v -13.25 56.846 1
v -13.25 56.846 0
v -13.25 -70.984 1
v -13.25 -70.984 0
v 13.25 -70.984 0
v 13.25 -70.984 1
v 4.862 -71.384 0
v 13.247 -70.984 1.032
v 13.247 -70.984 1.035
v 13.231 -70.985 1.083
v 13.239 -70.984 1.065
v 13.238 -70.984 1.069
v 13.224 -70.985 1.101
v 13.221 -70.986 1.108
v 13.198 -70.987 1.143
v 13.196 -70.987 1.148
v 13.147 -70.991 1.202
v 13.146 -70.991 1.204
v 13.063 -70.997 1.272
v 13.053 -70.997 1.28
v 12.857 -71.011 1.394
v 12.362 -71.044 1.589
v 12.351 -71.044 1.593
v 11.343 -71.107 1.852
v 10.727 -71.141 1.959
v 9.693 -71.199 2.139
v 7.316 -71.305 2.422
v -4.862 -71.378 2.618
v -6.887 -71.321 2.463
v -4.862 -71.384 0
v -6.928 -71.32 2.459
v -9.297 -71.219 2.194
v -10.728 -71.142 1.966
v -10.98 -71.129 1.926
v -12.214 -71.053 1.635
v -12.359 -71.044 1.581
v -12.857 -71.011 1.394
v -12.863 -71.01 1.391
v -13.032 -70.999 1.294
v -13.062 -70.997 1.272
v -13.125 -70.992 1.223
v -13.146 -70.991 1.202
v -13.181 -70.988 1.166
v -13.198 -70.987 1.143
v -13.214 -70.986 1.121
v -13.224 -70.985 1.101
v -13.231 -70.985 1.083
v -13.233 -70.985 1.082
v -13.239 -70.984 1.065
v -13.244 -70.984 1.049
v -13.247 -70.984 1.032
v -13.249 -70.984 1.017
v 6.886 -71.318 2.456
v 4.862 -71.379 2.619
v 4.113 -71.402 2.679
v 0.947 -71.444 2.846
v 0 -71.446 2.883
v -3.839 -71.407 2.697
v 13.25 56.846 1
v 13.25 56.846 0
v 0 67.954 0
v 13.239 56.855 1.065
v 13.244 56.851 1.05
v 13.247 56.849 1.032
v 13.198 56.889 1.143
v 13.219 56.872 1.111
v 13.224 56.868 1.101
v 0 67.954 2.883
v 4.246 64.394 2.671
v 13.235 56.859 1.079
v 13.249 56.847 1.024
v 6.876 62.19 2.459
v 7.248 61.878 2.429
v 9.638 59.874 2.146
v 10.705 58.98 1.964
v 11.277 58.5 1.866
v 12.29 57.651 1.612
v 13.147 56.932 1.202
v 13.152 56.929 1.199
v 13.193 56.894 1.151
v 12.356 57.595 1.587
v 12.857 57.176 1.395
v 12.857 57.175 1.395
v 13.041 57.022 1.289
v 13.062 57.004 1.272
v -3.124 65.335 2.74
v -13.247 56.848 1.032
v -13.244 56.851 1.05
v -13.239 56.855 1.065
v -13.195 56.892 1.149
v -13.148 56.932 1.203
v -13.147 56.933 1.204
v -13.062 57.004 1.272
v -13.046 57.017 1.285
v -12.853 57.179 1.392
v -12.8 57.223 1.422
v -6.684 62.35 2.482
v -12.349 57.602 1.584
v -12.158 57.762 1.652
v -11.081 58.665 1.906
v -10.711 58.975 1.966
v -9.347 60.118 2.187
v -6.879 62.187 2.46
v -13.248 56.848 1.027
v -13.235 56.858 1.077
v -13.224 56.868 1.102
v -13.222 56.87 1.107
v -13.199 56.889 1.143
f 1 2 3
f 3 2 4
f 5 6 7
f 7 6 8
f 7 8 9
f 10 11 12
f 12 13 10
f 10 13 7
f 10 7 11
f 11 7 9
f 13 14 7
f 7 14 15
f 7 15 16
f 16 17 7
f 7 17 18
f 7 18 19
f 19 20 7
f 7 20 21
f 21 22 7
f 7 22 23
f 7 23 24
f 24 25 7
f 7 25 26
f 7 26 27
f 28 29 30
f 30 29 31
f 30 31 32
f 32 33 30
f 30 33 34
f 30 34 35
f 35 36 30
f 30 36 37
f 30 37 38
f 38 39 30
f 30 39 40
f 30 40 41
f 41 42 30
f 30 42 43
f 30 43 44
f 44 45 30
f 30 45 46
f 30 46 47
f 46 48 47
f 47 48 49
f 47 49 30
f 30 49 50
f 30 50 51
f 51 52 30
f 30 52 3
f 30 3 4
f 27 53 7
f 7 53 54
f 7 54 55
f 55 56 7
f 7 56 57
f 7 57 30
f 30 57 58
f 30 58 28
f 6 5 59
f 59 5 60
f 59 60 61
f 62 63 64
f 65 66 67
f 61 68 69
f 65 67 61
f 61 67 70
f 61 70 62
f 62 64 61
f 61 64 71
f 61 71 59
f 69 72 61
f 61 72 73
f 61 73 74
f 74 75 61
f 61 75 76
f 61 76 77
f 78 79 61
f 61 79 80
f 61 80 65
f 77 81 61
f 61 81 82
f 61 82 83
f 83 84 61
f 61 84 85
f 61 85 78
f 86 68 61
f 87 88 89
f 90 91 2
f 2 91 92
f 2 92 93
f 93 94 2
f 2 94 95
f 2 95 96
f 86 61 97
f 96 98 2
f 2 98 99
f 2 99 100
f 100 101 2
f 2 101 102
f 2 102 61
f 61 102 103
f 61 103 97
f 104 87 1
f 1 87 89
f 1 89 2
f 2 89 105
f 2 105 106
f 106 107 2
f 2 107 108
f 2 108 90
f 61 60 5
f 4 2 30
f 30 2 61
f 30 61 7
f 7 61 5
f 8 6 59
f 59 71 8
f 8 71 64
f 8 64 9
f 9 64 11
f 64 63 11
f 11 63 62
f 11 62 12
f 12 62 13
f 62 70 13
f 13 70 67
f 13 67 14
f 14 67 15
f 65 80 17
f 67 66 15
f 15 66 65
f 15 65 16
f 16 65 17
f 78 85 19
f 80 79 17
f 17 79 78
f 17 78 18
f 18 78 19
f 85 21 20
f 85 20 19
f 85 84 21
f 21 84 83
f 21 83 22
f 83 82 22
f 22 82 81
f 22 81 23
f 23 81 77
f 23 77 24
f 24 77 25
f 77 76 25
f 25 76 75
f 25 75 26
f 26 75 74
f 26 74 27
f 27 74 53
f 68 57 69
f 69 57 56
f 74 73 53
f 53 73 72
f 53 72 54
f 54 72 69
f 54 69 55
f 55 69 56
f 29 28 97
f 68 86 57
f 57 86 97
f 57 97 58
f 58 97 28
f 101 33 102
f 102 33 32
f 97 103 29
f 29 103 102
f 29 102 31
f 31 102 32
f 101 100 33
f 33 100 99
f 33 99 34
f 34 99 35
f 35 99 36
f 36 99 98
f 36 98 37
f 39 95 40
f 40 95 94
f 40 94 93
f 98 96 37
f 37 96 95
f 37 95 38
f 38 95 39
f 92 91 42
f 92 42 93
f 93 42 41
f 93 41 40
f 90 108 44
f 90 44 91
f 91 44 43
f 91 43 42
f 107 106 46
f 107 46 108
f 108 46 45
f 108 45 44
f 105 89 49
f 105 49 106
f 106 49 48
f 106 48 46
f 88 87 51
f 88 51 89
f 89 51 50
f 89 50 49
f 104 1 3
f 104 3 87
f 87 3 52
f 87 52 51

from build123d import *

# Parameters (mm, degrees)
EXTRUDE_1_DEPTH = 3
FILLET_1_SIZE   = 2
FILLET_1_SIZE_2 = 20


with BuildPart() as part:
    # 스케치1 → 보스-돌출1 (new body)
    with BuildSketch(Plane.XY):
        with BuildLine():
            Line((-13.25, 56.84613648), (0, 67.95386352))
            Line((0, 67.95386352), (13.25, 56.84613648))
            Line((13.25, 56.84613648), (13.25, -70.98356682))
            ThreePointArc((13.25, -70.98356682), (0, -71.44613648), (-13.25, -70.98356682))
            Line((-13.25, -70.98356682), (-13.25, 56.84613648))
        make_face()
    extrude(amount=EXTRUDE_1_DEPTH)

    # 필렛1
    # an asymmetric fillet: 20, 2 mm, written as the material it takes off along each edge
    with BuildSketch(Plane(origin=(-13.25, -120.98356682, 3), x_dir=(0, 0, -1), z_dir=(0, 1, 0)), Plane(origin=(13.25, 106.84613648, 3), x_dir=(0, 0, -1), z_dir=(0, -1, 0))) as fillet_1_piece_1:
        with BuildLine():
            Bezier((FILLET_1_SIZE, 0), (0, 0), (0, -FILLET_1_SIZE_2), weights=[1, 0.707106781, 1])
            Line((0, -FILLET_1_SIZE_2), (0, 0))
            Line((0, 0), (FILLET_1_SIZE, 0))
        make_face()
    extrude(amount=227.8297033, mode=Mode.SUBTRACT)


solid = part.part
